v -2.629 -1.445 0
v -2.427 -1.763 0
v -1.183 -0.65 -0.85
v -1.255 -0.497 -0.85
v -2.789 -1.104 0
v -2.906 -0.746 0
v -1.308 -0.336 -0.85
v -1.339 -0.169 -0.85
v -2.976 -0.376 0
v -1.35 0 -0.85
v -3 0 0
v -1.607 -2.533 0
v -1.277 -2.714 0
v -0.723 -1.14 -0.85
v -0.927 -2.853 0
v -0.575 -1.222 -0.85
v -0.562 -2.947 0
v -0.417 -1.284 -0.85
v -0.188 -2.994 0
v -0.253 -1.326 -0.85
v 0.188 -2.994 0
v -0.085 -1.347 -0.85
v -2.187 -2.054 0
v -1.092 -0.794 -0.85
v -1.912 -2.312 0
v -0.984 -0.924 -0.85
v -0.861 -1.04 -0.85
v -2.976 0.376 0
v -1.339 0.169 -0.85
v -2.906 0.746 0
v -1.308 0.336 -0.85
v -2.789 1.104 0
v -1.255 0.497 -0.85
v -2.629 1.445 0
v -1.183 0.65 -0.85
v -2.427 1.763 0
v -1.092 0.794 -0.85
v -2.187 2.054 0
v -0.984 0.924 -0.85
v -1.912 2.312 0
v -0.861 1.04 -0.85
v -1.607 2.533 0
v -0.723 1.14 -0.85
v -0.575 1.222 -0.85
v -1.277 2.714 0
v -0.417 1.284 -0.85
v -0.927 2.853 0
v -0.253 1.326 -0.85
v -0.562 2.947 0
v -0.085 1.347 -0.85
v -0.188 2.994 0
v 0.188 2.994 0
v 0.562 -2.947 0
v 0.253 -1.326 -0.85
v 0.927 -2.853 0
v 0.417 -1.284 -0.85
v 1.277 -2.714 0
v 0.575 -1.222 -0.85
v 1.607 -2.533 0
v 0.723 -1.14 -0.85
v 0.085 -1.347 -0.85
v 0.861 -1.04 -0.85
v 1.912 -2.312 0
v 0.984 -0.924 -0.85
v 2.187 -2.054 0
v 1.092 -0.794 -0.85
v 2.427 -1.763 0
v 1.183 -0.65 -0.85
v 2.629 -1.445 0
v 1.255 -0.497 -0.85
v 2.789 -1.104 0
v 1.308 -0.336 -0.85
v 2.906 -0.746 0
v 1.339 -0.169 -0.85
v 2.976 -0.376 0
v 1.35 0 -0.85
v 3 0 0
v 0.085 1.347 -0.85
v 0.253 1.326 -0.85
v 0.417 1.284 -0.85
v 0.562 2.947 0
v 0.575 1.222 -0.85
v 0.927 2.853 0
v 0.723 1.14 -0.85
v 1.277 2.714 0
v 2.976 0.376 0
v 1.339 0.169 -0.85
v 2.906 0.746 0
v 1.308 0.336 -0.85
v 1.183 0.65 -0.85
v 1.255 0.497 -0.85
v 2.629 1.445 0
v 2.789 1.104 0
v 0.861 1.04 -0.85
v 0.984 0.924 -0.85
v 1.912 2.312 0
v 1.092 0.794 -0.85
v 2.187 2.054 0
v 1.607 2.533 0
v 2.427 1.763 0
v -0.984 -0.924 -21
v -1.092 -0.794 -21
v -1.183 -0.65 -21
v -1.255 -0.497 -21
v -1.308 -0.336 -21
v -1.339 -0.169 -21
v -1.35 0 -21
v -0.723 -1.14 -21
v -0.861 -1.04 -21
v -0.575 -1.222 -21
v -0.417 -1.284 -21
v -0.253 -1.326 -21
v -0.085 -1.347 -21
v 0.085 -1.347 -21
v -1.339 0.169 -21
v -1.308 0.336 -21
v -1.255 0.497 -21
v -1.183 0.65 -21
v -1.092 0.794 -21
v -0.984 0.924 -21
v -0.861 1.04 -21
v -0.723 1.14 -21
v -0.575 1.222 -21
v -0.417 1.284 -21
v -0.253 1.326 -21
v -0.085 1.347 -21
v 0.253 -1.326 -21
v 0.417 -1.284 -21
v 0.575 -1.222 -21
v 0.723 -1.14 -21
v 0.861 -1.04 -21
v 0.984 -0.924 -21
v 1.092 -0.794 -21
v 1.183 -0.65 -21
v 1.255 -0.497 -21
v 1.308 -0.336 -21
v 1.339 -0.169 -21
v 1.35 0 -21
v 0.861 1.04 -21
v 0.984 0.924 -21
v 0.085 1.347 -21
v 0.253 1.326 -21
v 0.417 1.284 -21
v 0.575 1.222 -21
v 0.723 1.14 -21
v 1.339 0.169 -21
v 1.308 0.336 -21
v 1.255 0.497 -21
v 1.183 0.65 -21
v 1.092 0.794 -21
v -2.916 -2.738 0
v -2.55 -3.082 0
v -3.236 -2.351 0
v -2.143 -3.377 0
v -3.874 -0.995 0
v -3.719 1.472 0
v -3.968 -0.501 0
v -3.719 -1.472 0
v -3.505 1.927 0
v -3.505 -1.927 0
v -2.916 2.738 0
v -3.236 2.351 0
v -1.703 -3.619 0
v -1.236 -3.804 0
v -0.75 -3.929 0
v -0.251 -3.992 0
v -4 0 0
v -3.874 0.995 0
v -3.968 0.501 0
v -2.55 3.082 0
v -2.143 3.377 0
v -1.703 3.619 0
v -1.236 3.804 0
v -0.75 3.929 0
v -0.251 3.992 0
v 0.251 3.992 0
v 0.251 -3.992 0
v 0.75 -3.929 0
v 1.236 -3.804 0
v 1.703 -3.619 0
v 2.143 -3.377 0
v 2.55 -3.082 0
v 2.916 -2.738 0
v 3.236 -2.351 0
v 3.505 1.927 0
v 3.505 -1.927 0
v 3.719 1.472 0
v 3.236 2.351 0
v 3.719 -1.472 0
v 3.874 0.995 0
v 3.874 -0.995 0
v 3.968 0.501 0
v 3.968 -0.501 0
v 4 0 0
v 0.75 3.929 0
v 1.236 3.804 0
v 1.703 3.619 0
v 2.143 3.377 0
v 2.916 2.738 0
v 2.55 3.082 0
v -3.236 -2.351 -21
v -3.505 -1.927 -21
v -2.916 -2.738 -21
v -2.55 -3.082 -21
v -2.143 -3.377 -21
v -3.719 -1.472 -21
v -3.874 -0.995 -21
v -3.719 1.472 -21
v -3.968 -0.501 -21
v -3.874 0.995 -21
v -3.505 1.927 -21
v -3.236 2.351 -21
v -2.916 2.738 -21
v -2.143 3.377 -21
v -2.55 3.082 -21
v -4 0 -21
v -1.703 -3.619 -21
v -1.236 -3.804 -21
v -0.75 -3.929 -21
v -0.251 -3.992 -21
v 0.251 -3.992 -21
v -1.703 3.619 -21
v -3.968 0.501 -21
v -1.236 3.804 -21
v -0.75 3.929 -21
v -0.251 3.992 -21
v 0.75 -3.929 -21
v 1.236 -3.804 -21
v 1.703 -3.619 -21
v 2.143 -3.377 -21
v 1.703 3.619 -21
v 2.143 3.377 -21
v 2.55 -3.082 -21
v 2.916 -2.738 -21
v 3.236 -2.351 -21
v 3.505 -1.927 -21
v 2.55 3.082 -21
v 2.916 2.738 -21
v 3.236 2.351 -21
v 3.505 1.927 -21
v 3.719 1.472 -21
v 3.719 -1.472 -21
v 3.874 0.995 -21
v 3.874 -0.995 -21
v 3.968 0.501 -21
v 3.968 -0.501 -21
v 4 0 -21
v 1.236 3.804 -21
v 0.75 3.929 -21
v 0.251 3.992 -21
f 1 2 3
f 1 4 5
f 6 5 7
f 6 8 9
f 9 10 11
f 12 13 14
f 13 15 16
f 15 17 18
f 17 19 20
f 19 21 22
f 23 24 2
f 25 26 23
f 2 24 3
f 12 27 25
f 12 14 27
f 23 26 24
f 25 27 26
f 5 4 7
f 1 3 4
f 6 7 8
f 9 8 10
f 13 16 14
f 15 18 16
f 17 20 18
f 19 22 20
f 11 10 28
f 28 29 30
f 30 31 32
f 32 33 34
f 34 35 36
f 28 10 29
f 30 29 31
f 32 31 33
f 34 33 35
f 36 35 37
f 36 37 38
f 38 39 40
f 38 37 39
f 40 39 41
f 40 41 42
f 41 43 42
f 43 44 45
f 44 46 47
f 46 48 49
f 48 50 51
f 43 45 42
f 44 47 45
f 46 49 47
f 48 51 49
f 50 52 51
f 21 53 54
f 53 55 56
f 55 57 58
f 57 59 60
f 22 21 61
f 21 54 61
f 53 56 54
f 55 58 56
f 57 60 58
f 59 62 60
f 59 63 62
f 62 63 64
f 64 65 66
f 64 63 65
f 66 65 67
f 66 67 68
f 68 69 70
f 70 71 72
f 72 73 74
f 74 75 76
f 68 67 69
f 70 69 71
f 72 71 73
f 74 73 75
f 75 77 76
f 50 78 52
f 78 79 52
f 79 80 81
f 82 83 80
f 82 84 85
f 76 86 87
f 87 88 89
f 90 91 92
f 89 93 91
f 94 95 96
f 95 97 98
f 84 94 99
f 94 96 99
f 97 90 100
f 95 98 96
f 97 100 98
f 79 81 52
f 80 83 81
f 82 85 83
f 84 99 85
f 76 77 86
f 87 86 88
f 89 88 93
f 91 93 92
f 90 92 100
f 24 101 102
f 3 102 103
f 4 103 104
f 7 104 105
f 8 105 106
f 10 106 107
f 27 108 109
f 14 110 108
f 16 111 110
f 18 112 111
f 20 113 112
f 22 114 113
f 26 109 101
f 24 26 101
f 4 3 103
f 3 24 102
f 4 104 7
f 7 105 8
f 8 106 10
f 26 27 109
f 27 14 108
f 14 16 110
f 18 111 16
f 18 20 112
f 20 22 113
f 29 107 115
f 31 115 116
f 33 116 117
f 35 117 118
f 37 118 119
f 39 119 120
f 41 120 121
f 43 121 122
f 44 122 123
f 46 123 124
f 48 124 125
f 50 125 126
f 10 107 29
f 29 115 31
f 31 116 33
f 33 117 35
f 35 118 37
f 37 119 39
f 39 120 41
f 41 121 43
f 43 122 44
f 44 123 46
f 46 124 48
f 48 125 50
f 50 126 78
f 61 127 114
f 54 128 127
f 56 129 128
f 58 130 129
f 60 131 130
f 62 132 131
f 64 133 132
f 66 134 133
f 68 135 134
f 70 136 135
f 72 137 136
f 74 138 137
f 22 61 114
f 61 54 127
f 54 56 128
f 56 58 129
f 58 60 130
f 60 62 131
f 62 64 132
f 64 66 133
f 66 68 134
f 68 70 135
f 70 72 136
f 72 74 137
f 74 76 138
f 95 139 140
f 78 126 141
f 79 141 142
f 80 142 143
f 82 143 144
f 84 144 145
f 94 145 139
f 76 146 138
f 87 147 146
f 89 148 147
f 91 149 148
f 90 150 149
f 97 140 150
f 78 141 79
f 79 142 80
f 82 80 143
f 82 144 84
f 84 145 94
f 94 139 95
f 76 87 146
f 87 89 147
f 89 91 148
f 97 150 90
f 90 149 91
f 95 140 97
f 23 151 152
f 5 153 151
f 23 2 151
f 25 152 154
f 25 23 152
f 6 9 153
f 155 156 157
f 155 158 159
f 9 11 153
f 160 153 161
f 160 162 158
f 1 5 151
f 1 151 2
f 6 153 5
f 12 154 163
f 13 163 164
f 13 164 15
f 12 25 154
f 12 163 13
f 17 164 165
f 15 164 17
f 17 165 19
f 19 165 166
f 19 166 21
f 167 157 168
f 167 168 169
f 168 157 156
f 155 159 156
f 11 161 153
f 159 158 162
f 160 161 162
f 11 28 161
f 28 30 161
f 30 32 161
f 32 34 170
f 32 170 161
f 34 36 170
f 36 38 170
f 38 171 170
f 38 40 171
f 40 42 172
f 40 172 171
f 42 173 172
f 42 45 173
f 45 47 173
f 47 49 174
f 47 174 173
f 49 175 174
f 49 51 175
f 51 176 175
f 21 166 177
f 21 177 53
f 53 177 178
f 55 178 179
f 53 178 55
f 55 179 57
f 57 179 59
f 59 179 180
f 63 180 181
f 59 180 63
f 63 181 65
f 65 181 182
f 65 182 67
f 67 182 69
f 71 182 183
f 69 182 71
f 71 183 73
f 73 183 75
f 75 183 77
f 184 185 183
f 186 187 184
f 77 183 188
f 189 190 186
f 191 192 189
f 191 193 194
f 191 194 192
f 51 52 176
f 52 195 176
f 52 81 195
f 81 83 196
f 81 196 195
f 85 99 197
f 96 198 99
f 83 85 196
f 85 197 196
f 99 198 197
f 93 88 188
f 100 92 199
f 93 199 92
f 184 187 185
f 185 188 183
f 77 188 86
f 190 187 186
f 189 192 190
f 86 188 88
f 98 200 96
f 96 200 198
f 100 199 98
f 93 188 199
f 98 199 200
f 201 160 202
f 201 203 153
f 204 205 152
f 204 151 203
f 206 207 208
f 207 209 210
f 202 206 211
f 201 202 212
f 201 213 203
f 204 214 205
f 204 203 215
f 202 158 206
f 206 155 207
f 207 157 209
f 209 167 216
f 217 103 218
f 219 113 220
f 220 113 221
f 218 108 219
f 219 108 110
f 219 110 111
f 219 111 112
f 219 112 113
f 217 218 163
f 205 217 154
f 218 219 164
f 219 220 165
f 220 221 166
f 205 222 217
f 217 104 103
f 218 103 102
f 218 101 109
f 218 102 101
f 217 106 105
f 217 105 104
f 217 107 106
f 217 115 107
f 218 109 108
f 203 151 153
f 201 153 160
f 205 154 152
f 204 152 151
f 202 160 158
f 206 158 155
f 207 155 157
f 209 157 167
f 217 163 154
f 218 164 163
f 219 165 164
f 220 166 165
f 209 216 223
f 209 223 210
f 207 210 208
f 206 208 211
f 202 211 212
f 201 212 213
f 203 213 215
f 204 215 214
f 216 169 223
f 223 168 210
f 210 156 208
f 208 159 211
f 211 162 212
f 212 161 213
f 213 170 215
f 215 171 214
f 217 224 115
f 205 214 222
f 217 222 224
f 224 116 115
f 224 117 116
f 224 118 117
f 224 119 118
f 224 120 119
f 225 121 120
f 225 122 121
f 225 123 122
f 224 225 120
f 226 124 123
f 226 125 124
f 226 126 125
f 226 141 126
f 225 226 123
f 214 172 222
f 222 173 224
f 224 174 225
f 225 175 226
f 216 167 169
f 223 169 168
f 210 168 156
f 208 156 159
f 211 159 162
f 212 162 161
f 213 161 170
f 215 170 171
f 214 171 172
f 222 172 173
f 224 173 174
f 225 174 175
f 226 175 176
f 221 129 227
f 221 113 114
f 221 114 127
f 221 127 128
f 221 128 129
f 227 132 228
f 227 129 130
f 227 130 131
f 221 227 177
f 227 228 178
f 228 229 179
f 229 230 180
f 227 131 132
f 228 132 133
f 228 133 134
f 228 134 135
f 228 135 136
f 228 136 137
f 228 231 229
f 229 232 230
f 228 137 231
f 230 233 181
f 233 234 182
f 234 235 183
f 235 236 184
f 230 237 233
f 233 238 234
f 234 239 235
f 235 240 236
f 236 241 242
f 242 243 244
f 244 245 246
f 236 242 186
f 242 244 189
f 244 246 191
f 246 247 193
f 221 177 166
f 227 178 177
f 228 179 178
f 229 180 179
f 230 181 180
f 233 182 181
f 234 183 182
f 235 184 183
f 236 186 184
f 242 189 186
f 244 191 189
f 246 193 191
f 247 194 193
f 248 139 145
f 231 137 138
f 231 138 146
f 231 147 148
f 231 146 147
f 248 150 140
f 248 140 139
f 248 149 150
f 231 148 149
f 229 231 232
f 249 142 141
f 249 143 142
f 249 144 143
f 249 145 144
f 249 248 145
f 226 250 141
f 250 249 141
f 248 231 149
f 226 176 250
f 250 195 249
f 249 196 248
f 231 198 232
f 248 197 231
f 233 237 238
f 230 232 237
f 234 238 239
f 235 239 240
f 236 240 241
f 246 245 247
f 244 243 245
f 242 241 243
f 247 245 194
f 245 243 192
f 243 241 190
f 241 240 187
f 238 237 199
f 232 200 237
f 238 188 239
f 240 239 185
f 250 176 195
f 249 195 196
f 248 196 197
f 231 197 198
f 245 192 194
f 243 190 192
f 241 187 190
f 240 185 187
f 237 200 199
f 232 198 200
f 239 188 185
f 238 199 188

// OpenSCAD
$fn = 50;

difference() {
	union() {
		translate(v = [0, 0, -21.0]) {
			cylinder(h = 24, r = 4.0);
		}
	}
	union() {
		translate(v = [0, 0, 0]) {
			rotate(a = [0, 0, 0]) {
				difference() {
					union() {
						translate(v = [0, 0, -24.0]) {
							cylinder(h = 24, r = 1.0);
						}
						translate(v = [0, 0, -0.85]) {
							cylinder(h = 0.85, r1 = 1.35, r2 = 3.0);
						}
						translate(v = [0, 0, -24.0]) {
							cylinder(h = 24, r = 1.35);
						}
						translate(v = [0, 0, -24.0]) {
							cylinder(h = 24, r = 1.0);
						}
					}
					union();
				}
			}
		}
		#cylinder(h = 3, r = 5.0);
	}
}
